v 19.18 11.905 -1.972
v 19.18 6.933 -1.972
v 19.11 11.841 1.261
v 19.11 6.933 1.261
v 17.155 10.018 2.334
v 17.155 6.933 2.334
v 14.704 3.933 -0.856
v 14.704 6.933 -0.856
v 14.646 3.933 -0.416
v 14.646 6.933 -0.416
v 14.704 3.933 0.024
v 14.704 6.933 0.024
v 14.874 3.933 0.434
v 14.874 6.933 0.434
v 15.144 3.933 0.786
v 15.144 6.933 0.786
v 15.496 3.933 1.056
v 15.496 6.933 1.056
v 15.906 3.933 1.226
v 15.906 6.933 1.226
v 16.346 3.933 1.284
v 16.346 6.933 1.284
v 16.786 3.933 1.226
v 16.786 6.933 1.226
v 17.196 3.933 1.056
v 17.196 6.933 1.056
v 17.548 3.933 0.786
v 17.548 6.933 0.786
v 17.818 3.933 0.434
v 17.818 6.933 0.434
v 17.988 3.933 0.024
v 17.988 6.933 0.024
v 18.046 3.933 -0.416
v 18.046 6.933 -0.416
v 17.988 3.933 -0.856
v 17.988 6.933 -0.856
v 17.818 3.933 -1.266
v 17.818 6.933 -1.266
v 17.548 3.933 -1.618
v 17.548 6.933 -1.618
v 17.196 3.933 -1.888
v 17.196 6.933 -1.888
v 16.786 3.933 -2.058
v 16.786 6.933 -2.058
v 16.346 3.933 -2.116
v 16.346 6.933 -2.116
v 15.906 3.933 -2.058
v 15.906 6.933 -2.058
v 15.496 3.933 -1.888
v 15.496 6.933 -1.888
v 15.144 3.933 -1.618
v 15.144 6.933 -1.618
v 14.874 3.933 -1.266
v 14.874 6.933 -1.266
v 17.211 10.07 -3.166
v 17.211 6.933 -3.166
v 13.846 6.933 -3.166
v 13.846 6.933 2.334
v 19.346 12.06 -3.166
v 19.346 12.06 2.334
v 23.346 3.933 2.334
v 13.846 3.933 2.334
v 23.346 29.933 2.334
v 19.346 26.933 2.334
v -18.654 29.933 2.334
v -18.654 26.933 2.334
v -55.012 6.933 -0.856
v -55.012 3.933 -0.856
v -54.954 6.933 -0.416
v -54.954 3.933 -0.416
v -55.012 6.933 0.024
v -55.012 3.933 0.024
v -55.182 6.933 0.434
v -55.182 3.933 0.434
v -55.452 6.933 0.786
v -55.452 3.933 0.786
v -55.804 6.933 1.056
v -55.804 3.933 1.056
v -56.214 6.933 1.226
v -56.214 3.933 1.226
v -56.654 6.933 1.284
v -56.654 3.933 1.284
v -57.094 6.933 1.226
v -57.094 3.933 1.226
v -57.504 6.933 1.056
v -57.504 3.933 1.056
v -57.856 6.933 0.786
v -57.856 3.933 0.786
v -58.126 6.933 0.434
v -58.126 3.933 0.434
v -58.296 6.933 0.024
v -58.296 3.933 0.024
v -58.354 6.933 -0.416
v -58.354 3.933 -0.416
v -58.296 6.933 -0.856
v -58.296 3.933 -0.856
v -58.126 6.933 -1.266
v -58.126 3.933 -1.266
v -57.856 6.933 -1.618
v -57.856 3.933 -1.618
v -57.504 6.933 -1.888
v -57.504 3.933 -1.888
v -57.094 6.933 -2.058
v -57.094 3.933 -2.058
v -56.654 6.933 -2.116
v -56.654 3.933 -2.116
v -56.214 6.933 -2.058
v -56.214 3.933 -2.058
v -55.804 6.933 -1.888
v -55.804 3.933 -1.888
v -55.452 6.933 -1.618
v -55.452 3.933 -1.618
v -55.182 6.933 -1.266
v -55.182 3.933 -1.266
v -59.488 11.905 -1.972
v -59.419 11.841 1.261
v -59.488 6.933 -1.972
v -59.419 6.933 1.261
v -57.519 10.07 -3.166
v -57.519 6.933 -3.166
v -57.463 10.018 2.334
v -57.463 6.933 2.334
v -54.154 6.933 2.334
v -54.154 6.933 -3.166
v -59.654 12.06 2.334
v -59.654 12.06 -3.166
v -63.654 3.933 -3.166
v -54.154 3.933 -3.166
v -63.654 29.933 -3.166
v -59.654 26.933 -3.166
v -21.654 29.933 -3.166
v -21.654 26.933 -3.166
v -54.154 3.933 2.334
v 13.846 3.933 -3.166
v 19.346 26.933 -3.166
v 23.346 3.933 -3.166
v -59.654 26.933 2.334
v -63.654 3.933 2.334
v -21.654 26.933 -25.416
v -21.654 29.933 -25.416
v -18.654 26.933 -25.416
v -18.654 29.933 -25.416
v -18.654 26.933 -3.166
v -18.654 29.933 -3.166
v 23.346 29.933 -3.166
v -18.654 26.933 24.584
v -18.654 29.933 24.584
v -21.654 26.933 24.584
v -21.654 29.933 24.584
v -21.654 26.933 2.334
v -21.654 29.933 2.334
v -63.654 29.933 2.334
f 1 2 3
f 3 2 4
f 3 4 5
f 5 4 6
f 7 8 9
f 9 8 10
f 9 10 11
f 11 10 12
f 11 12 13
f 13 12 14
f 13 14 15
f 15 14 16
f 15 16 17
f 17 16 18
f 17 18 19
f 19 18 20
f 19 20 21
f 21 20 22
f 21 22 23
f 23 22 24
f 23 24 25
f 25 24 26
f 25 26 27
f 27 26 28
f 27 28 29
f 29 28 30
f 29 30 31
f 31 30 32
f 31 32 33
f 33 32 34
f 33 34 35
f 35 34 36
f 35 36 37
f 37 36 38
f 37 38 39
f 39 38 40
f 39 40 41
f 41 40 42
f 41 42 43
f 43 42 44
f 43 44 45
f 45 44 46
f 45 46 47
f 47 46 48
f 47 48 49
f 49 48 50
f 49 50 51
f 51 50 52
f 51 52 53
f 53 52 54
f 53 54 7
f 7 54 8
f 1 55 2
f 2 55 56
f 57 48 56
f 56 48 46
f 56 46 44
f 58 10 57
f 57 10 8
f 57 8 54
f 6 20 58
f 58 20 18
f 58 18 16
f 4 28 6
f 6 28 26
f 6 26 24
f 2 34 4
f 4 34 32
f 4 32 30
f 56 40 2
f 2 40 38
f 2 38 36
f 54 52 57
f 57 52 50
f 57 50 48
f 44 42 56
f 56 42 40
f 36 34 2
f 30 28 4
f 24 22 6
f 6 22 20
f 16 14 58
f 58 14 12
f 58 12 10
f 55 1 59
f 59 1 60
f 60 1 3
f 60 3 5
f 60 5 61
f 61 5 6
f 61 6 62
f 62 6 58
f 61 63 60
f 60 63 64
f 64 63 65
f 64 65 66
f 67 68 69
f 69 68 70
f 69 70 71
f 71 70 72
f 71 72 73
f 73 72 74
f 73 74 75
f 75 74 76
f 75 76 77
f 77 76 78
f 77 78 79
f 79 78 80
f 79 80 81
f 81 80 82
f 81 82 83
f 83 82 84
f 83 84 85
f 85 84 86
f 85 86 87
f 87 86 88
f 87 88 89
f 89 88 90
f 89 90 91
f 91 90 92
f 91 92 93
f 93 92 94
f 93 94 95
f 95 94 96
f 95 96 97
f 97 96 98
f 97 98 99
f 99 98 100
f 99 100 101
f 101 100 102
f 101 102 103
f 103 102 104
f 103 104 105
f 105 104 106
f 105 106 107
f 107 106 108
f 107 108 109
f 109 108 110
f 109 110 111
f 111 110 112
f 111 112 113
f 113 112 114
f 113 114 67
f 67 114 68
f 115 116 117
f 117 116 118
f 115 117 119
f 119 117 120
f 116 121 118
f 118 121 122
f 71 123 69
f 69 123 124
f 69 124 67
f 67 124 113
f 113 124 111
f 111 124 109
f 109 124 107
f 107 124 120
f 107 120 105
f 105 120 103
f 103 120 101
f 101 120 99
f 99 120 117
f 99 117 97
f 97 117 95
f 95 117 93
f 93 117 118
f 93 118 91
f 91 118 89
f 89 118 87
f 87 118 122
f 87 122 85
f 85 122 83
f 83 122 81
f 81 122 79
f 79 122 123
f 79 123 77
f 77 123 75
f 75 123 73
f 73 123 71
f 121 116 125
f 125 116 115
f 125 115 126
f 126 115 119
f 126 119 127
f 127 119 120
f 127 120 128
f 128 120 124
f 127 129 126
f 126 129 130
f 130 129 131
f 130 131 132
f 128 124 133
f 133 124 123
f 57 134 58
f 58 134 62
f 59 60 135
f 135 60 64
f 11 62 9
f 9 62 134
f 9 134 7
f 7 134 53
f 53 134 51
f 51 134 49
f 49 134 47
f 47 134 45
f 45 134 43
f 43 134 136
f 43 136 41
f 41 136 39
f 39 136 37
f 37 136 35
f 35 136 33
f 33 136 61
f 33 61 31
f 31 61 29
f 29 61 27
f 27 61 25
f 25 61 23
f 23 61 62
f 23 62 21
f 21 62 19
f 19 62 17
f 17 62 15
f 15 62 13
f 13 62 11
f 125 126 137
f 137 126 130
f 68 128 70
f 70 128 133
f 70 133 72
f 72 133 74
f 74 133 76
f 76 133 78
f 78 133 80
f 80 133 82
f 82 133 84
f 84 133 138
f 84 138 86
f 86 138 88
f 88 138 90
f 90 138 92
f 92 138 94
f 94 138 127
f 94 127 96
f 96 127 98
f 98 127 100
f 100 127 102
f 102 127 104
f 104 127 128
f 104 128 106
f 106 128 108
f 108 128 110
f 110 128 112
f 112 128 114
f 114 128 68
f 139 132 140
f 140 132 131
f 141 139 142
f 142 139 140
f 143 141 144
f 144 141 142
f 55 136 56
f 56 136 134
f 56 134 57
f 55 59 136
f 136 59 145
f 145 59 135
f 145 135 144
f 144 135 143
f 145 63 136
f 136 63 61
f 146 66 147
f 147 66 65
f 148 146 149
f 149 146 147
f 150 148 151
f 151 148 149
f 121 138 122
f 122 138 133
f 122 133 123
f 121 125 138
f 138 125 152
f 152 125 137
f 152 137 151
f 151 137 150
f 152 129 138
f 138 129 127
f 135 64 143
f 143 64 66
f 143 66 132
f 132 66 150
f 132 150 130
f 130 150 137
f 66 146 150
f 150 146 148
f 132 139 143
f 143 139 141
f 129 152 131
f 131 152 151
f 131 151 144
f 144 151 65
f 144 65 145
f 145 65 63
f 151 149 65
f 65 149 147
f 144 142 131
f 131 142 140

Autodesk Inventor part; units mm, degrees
ref_plane "YZ Plane" through (0, 0, 0) normal (1, 0, 0) x (0, 1, 0)
ref_plane "XZ Plane" through (0, 0, 0) normal (0, 1, 0) x (-1, 0, 0)
ref_plane "XY Plane" through (0, 0, 0) normal (0, 0, 1) x (1, 0, 0)
ref_plane "Work Plane1" through (-37.0541, 3.9333, 19.6842) normal (0, 1, 0) x (-1, 0, 0)
sketch "Sketch1" plane through (-37.0541, 3.9333, 19.6842) normal (0, 1, 0) x (-1, 0, 0)
  point P0 (-37.0541, -19.6842)
ref_plane "Work Plane2" through (-37.0541, 26.9333, 19.6842) normal (0, 1, 0) x (-1, 0, 0)
sketch "Sketch2" plane through (-37.0541, 26.9333, 19.6842) normal (0, 1, 0) x (-1, 0, 0)
  line L0 (-16.9, -6.2922) -> (-16.9, -34.5181) construction
  line L1 (-18.4, -45.1) -> (-15.4, -45.1)
  line L2 (-15.4, 4.9) -> (-18.4, 4.9)
  line L3 (-15.4, -45.1) -> (-16.9, -20.1) construction
  line L4 (-17.065, -17.35) -> (-18.4, 4.9) construction
  line L5 (26.6, -17.35) -> (-15.4, -17.35)
  line L6 (-16.735, -17.35) -> (-17.065, -17.35)
  line L7 (-18.4, -17.35) -> (-60.4, -17.35)
  line L8 (-18.4, 4.9) -> (-18.4, -17.35)
  line L9 (-18.4, -22.85) -> (-18.4, -45.1)
  line L10 (-15.4, -45.1) -> (-15.4, -22.85)
  line L11 (-15.4, -17.35) -> (-15.4, 4.9)
  line L12 (-15.4, -22.85) -> (26.6, -22.85)
  line L13 (-18.4, -45.1) -> (-17.065, -22.85) construction
  line L14 (-16.9, -20.1) -> (-15.4, 4.9) construction
  line L15 (-60.4, -22.85) -> (-18.4, -22.85)
  line L16 (-17.065, -22.85) -> (-16.735, -22.85)
  line L17 (-60.4, -17.35) -> (-60.4, -22.85)
  line L18 (26.6, -17.35) -> (26.6, -22.85)
  point P0 (-37.0541, -19.6842)
  point P1 (22.6, -17.35)
  point P2 (-56.4, -22.85)
  dimension "d3" = 3
  dimension "d4" = 50
  dimension "d5" = 42
  dimension "d6" = 42
extrude "Extrusion2" add sketch "Sketch2" along normal blind 3
sketch "Sketch3" plane through (-37.0541, 26.9333, 19.6842) normal (0, -1, 0) x (1, 0, 0)
  line L0 (60.4, -22.85) -> (18.4, -22.85) projected
  line L1 (18.4, -17.35) -> (60.4, -17.35) projected
  line L2 (60.4, -22.85) -> (56.4, -22.85)
  line L3 (56.4, -22.85) -> (56.4, -17.35)
  line L4 (56.4, -17.35) -> (60.4, -17.35)
  line L5 (60.4, -17.35) -> (60.4, -22.85)
  line L6 (-26.6, -22.85) -> (-26.6, -17.35) projected
  line L7 (-26.6, -17.35) -> (15.4, -17.35) projected
  line L8 (-26.6, -22.85) -> (-22.6, -22.85)
  line L9 (-22.6, -22.85) -> (-22.6, -17.35)
  line L10 (-22.6, -17.35) -> (-26.6, -17.35)
  line L11 (-26.6, -17.35) -> (-26.6, -22.85)
  point P0 (37.0541, -19.6842)
  dimension "d9" = 4
  dimension "d10" = 4
extrude "Extrusion3" add sketch "Sketch3" along normal blind 23
sketch "Sketch4" plane through (19.3459, 26.9333, -3.1658) normal (-1, 0, 0) x (0, 0, 1)
  line L0 (5.5, -23) -> (0, -23) projected
  line L1 (5.5, 0) -> (5.5, -23) projected
  line L2 (0, -23) -> (5.5, -23)
  line L3 (5.5, -23) -> (5.5, -19)
  line L4 (5.5, -19) -> (0, -19)
  line L5 (0, -19) -> (0, -23)
  point P0 (3.1658, -26.9333)
  dimension "d13" = 4
sketch "Sketch5" plane through (-18.6541, 29.9333, 2.3342) normal (0, 0, 1) x (1, 0, 0)
  line L0 (38, -3) -> (38, -26) projected
  line L1 (38, -26) -> (32.5, -26)
  line L2 (32.5, -26) -> (32.5, -23)
  line L3 (32.5, -23) -> (38, -17.8732)
  point P0 (18.6541, -29.9333)
  dimension "d14" = 5.5
  dimension "d15" = 3
extrude "Extrusion4" add sketch "Sketch5" against normal up to surface (5.5 mm away)
ref_plane "Work Plane3" through (-20.1541, 26.9333, 2.3342) normal (1, 0, 0) x (0, 0, -1)
mirror "Mirror1" about plane through (-20.1541, 26.9333, 2.3342) normal (1, 0, 0) of "Extrusion4"
ref_plane "Work Plane4" through (-37.0541, 12.1833, 19.6842) normal (0, -1, 0) x (1, 0, 0)
sketch "Sketch6" plane through (-37.0541, 12.1833, 19.6842) normal (0, -1, 0) x (1, 0, 0)
  circle A0 centre (53.4, -20.1) radius 1.7 projected
  circle A1 centre (-19.6, -20.1) radius 1.7 projected
  line L0 (-16.8355, -21.7765) -> (-19.6696, -23.3324)
  line L1 (-19.6696, -23.3324) -> (-22.4342, -21.6559)
  line L2 (-22.4342, -21.6559) -> (-22.3645, -18.4234)
  line L3 (-22.3645, -18.4234) -> (-19.5303, -16.8676)
  line L4 (-19.5303, -16.8676) -> (-16.7658, -18.5441)
  line L5 (-16.7658, -18.5441) -> (-16.8355, -21.7765)
  line L6 (-19.6696, -23.3324) -> (-15.5487, -23.3324)
  line L7 (-15.5487, -23.3324) -> (-15.5487, -16.0828)
  line L8 (-15.5487, -16.0828) -> (-19.5303, -16.8676)
  point P0 (37.0541, -19.6842)
  dimension "d19" = 5.6
extrude "Extrusion5" cut sketch "Sketch6" along normal blind 5.25 contours A1 | L5 L4 L8 L7 L6 L0 | L0 L1 L2 L3 L4 L5
sketch "Sketch7" plane through (-37.0541, 3.9333, 19.6842) normal (0, -1, 0) x (1, 0, 0)
  circle A0 centre (-19.6, -20.1) radius 1.7 projected
  point P0 (37.0541, -19.6842)
extrude "Extrusion6" cut sketch "Sketch7" against normal blind 6.25
mirror "Mirror2" about plane through (-20.1541, 26.9333, 2.3342) normal (1, 0, 0) of "Extrusion5", "Extrusion6"
properties part number "tec_holder_part2"
